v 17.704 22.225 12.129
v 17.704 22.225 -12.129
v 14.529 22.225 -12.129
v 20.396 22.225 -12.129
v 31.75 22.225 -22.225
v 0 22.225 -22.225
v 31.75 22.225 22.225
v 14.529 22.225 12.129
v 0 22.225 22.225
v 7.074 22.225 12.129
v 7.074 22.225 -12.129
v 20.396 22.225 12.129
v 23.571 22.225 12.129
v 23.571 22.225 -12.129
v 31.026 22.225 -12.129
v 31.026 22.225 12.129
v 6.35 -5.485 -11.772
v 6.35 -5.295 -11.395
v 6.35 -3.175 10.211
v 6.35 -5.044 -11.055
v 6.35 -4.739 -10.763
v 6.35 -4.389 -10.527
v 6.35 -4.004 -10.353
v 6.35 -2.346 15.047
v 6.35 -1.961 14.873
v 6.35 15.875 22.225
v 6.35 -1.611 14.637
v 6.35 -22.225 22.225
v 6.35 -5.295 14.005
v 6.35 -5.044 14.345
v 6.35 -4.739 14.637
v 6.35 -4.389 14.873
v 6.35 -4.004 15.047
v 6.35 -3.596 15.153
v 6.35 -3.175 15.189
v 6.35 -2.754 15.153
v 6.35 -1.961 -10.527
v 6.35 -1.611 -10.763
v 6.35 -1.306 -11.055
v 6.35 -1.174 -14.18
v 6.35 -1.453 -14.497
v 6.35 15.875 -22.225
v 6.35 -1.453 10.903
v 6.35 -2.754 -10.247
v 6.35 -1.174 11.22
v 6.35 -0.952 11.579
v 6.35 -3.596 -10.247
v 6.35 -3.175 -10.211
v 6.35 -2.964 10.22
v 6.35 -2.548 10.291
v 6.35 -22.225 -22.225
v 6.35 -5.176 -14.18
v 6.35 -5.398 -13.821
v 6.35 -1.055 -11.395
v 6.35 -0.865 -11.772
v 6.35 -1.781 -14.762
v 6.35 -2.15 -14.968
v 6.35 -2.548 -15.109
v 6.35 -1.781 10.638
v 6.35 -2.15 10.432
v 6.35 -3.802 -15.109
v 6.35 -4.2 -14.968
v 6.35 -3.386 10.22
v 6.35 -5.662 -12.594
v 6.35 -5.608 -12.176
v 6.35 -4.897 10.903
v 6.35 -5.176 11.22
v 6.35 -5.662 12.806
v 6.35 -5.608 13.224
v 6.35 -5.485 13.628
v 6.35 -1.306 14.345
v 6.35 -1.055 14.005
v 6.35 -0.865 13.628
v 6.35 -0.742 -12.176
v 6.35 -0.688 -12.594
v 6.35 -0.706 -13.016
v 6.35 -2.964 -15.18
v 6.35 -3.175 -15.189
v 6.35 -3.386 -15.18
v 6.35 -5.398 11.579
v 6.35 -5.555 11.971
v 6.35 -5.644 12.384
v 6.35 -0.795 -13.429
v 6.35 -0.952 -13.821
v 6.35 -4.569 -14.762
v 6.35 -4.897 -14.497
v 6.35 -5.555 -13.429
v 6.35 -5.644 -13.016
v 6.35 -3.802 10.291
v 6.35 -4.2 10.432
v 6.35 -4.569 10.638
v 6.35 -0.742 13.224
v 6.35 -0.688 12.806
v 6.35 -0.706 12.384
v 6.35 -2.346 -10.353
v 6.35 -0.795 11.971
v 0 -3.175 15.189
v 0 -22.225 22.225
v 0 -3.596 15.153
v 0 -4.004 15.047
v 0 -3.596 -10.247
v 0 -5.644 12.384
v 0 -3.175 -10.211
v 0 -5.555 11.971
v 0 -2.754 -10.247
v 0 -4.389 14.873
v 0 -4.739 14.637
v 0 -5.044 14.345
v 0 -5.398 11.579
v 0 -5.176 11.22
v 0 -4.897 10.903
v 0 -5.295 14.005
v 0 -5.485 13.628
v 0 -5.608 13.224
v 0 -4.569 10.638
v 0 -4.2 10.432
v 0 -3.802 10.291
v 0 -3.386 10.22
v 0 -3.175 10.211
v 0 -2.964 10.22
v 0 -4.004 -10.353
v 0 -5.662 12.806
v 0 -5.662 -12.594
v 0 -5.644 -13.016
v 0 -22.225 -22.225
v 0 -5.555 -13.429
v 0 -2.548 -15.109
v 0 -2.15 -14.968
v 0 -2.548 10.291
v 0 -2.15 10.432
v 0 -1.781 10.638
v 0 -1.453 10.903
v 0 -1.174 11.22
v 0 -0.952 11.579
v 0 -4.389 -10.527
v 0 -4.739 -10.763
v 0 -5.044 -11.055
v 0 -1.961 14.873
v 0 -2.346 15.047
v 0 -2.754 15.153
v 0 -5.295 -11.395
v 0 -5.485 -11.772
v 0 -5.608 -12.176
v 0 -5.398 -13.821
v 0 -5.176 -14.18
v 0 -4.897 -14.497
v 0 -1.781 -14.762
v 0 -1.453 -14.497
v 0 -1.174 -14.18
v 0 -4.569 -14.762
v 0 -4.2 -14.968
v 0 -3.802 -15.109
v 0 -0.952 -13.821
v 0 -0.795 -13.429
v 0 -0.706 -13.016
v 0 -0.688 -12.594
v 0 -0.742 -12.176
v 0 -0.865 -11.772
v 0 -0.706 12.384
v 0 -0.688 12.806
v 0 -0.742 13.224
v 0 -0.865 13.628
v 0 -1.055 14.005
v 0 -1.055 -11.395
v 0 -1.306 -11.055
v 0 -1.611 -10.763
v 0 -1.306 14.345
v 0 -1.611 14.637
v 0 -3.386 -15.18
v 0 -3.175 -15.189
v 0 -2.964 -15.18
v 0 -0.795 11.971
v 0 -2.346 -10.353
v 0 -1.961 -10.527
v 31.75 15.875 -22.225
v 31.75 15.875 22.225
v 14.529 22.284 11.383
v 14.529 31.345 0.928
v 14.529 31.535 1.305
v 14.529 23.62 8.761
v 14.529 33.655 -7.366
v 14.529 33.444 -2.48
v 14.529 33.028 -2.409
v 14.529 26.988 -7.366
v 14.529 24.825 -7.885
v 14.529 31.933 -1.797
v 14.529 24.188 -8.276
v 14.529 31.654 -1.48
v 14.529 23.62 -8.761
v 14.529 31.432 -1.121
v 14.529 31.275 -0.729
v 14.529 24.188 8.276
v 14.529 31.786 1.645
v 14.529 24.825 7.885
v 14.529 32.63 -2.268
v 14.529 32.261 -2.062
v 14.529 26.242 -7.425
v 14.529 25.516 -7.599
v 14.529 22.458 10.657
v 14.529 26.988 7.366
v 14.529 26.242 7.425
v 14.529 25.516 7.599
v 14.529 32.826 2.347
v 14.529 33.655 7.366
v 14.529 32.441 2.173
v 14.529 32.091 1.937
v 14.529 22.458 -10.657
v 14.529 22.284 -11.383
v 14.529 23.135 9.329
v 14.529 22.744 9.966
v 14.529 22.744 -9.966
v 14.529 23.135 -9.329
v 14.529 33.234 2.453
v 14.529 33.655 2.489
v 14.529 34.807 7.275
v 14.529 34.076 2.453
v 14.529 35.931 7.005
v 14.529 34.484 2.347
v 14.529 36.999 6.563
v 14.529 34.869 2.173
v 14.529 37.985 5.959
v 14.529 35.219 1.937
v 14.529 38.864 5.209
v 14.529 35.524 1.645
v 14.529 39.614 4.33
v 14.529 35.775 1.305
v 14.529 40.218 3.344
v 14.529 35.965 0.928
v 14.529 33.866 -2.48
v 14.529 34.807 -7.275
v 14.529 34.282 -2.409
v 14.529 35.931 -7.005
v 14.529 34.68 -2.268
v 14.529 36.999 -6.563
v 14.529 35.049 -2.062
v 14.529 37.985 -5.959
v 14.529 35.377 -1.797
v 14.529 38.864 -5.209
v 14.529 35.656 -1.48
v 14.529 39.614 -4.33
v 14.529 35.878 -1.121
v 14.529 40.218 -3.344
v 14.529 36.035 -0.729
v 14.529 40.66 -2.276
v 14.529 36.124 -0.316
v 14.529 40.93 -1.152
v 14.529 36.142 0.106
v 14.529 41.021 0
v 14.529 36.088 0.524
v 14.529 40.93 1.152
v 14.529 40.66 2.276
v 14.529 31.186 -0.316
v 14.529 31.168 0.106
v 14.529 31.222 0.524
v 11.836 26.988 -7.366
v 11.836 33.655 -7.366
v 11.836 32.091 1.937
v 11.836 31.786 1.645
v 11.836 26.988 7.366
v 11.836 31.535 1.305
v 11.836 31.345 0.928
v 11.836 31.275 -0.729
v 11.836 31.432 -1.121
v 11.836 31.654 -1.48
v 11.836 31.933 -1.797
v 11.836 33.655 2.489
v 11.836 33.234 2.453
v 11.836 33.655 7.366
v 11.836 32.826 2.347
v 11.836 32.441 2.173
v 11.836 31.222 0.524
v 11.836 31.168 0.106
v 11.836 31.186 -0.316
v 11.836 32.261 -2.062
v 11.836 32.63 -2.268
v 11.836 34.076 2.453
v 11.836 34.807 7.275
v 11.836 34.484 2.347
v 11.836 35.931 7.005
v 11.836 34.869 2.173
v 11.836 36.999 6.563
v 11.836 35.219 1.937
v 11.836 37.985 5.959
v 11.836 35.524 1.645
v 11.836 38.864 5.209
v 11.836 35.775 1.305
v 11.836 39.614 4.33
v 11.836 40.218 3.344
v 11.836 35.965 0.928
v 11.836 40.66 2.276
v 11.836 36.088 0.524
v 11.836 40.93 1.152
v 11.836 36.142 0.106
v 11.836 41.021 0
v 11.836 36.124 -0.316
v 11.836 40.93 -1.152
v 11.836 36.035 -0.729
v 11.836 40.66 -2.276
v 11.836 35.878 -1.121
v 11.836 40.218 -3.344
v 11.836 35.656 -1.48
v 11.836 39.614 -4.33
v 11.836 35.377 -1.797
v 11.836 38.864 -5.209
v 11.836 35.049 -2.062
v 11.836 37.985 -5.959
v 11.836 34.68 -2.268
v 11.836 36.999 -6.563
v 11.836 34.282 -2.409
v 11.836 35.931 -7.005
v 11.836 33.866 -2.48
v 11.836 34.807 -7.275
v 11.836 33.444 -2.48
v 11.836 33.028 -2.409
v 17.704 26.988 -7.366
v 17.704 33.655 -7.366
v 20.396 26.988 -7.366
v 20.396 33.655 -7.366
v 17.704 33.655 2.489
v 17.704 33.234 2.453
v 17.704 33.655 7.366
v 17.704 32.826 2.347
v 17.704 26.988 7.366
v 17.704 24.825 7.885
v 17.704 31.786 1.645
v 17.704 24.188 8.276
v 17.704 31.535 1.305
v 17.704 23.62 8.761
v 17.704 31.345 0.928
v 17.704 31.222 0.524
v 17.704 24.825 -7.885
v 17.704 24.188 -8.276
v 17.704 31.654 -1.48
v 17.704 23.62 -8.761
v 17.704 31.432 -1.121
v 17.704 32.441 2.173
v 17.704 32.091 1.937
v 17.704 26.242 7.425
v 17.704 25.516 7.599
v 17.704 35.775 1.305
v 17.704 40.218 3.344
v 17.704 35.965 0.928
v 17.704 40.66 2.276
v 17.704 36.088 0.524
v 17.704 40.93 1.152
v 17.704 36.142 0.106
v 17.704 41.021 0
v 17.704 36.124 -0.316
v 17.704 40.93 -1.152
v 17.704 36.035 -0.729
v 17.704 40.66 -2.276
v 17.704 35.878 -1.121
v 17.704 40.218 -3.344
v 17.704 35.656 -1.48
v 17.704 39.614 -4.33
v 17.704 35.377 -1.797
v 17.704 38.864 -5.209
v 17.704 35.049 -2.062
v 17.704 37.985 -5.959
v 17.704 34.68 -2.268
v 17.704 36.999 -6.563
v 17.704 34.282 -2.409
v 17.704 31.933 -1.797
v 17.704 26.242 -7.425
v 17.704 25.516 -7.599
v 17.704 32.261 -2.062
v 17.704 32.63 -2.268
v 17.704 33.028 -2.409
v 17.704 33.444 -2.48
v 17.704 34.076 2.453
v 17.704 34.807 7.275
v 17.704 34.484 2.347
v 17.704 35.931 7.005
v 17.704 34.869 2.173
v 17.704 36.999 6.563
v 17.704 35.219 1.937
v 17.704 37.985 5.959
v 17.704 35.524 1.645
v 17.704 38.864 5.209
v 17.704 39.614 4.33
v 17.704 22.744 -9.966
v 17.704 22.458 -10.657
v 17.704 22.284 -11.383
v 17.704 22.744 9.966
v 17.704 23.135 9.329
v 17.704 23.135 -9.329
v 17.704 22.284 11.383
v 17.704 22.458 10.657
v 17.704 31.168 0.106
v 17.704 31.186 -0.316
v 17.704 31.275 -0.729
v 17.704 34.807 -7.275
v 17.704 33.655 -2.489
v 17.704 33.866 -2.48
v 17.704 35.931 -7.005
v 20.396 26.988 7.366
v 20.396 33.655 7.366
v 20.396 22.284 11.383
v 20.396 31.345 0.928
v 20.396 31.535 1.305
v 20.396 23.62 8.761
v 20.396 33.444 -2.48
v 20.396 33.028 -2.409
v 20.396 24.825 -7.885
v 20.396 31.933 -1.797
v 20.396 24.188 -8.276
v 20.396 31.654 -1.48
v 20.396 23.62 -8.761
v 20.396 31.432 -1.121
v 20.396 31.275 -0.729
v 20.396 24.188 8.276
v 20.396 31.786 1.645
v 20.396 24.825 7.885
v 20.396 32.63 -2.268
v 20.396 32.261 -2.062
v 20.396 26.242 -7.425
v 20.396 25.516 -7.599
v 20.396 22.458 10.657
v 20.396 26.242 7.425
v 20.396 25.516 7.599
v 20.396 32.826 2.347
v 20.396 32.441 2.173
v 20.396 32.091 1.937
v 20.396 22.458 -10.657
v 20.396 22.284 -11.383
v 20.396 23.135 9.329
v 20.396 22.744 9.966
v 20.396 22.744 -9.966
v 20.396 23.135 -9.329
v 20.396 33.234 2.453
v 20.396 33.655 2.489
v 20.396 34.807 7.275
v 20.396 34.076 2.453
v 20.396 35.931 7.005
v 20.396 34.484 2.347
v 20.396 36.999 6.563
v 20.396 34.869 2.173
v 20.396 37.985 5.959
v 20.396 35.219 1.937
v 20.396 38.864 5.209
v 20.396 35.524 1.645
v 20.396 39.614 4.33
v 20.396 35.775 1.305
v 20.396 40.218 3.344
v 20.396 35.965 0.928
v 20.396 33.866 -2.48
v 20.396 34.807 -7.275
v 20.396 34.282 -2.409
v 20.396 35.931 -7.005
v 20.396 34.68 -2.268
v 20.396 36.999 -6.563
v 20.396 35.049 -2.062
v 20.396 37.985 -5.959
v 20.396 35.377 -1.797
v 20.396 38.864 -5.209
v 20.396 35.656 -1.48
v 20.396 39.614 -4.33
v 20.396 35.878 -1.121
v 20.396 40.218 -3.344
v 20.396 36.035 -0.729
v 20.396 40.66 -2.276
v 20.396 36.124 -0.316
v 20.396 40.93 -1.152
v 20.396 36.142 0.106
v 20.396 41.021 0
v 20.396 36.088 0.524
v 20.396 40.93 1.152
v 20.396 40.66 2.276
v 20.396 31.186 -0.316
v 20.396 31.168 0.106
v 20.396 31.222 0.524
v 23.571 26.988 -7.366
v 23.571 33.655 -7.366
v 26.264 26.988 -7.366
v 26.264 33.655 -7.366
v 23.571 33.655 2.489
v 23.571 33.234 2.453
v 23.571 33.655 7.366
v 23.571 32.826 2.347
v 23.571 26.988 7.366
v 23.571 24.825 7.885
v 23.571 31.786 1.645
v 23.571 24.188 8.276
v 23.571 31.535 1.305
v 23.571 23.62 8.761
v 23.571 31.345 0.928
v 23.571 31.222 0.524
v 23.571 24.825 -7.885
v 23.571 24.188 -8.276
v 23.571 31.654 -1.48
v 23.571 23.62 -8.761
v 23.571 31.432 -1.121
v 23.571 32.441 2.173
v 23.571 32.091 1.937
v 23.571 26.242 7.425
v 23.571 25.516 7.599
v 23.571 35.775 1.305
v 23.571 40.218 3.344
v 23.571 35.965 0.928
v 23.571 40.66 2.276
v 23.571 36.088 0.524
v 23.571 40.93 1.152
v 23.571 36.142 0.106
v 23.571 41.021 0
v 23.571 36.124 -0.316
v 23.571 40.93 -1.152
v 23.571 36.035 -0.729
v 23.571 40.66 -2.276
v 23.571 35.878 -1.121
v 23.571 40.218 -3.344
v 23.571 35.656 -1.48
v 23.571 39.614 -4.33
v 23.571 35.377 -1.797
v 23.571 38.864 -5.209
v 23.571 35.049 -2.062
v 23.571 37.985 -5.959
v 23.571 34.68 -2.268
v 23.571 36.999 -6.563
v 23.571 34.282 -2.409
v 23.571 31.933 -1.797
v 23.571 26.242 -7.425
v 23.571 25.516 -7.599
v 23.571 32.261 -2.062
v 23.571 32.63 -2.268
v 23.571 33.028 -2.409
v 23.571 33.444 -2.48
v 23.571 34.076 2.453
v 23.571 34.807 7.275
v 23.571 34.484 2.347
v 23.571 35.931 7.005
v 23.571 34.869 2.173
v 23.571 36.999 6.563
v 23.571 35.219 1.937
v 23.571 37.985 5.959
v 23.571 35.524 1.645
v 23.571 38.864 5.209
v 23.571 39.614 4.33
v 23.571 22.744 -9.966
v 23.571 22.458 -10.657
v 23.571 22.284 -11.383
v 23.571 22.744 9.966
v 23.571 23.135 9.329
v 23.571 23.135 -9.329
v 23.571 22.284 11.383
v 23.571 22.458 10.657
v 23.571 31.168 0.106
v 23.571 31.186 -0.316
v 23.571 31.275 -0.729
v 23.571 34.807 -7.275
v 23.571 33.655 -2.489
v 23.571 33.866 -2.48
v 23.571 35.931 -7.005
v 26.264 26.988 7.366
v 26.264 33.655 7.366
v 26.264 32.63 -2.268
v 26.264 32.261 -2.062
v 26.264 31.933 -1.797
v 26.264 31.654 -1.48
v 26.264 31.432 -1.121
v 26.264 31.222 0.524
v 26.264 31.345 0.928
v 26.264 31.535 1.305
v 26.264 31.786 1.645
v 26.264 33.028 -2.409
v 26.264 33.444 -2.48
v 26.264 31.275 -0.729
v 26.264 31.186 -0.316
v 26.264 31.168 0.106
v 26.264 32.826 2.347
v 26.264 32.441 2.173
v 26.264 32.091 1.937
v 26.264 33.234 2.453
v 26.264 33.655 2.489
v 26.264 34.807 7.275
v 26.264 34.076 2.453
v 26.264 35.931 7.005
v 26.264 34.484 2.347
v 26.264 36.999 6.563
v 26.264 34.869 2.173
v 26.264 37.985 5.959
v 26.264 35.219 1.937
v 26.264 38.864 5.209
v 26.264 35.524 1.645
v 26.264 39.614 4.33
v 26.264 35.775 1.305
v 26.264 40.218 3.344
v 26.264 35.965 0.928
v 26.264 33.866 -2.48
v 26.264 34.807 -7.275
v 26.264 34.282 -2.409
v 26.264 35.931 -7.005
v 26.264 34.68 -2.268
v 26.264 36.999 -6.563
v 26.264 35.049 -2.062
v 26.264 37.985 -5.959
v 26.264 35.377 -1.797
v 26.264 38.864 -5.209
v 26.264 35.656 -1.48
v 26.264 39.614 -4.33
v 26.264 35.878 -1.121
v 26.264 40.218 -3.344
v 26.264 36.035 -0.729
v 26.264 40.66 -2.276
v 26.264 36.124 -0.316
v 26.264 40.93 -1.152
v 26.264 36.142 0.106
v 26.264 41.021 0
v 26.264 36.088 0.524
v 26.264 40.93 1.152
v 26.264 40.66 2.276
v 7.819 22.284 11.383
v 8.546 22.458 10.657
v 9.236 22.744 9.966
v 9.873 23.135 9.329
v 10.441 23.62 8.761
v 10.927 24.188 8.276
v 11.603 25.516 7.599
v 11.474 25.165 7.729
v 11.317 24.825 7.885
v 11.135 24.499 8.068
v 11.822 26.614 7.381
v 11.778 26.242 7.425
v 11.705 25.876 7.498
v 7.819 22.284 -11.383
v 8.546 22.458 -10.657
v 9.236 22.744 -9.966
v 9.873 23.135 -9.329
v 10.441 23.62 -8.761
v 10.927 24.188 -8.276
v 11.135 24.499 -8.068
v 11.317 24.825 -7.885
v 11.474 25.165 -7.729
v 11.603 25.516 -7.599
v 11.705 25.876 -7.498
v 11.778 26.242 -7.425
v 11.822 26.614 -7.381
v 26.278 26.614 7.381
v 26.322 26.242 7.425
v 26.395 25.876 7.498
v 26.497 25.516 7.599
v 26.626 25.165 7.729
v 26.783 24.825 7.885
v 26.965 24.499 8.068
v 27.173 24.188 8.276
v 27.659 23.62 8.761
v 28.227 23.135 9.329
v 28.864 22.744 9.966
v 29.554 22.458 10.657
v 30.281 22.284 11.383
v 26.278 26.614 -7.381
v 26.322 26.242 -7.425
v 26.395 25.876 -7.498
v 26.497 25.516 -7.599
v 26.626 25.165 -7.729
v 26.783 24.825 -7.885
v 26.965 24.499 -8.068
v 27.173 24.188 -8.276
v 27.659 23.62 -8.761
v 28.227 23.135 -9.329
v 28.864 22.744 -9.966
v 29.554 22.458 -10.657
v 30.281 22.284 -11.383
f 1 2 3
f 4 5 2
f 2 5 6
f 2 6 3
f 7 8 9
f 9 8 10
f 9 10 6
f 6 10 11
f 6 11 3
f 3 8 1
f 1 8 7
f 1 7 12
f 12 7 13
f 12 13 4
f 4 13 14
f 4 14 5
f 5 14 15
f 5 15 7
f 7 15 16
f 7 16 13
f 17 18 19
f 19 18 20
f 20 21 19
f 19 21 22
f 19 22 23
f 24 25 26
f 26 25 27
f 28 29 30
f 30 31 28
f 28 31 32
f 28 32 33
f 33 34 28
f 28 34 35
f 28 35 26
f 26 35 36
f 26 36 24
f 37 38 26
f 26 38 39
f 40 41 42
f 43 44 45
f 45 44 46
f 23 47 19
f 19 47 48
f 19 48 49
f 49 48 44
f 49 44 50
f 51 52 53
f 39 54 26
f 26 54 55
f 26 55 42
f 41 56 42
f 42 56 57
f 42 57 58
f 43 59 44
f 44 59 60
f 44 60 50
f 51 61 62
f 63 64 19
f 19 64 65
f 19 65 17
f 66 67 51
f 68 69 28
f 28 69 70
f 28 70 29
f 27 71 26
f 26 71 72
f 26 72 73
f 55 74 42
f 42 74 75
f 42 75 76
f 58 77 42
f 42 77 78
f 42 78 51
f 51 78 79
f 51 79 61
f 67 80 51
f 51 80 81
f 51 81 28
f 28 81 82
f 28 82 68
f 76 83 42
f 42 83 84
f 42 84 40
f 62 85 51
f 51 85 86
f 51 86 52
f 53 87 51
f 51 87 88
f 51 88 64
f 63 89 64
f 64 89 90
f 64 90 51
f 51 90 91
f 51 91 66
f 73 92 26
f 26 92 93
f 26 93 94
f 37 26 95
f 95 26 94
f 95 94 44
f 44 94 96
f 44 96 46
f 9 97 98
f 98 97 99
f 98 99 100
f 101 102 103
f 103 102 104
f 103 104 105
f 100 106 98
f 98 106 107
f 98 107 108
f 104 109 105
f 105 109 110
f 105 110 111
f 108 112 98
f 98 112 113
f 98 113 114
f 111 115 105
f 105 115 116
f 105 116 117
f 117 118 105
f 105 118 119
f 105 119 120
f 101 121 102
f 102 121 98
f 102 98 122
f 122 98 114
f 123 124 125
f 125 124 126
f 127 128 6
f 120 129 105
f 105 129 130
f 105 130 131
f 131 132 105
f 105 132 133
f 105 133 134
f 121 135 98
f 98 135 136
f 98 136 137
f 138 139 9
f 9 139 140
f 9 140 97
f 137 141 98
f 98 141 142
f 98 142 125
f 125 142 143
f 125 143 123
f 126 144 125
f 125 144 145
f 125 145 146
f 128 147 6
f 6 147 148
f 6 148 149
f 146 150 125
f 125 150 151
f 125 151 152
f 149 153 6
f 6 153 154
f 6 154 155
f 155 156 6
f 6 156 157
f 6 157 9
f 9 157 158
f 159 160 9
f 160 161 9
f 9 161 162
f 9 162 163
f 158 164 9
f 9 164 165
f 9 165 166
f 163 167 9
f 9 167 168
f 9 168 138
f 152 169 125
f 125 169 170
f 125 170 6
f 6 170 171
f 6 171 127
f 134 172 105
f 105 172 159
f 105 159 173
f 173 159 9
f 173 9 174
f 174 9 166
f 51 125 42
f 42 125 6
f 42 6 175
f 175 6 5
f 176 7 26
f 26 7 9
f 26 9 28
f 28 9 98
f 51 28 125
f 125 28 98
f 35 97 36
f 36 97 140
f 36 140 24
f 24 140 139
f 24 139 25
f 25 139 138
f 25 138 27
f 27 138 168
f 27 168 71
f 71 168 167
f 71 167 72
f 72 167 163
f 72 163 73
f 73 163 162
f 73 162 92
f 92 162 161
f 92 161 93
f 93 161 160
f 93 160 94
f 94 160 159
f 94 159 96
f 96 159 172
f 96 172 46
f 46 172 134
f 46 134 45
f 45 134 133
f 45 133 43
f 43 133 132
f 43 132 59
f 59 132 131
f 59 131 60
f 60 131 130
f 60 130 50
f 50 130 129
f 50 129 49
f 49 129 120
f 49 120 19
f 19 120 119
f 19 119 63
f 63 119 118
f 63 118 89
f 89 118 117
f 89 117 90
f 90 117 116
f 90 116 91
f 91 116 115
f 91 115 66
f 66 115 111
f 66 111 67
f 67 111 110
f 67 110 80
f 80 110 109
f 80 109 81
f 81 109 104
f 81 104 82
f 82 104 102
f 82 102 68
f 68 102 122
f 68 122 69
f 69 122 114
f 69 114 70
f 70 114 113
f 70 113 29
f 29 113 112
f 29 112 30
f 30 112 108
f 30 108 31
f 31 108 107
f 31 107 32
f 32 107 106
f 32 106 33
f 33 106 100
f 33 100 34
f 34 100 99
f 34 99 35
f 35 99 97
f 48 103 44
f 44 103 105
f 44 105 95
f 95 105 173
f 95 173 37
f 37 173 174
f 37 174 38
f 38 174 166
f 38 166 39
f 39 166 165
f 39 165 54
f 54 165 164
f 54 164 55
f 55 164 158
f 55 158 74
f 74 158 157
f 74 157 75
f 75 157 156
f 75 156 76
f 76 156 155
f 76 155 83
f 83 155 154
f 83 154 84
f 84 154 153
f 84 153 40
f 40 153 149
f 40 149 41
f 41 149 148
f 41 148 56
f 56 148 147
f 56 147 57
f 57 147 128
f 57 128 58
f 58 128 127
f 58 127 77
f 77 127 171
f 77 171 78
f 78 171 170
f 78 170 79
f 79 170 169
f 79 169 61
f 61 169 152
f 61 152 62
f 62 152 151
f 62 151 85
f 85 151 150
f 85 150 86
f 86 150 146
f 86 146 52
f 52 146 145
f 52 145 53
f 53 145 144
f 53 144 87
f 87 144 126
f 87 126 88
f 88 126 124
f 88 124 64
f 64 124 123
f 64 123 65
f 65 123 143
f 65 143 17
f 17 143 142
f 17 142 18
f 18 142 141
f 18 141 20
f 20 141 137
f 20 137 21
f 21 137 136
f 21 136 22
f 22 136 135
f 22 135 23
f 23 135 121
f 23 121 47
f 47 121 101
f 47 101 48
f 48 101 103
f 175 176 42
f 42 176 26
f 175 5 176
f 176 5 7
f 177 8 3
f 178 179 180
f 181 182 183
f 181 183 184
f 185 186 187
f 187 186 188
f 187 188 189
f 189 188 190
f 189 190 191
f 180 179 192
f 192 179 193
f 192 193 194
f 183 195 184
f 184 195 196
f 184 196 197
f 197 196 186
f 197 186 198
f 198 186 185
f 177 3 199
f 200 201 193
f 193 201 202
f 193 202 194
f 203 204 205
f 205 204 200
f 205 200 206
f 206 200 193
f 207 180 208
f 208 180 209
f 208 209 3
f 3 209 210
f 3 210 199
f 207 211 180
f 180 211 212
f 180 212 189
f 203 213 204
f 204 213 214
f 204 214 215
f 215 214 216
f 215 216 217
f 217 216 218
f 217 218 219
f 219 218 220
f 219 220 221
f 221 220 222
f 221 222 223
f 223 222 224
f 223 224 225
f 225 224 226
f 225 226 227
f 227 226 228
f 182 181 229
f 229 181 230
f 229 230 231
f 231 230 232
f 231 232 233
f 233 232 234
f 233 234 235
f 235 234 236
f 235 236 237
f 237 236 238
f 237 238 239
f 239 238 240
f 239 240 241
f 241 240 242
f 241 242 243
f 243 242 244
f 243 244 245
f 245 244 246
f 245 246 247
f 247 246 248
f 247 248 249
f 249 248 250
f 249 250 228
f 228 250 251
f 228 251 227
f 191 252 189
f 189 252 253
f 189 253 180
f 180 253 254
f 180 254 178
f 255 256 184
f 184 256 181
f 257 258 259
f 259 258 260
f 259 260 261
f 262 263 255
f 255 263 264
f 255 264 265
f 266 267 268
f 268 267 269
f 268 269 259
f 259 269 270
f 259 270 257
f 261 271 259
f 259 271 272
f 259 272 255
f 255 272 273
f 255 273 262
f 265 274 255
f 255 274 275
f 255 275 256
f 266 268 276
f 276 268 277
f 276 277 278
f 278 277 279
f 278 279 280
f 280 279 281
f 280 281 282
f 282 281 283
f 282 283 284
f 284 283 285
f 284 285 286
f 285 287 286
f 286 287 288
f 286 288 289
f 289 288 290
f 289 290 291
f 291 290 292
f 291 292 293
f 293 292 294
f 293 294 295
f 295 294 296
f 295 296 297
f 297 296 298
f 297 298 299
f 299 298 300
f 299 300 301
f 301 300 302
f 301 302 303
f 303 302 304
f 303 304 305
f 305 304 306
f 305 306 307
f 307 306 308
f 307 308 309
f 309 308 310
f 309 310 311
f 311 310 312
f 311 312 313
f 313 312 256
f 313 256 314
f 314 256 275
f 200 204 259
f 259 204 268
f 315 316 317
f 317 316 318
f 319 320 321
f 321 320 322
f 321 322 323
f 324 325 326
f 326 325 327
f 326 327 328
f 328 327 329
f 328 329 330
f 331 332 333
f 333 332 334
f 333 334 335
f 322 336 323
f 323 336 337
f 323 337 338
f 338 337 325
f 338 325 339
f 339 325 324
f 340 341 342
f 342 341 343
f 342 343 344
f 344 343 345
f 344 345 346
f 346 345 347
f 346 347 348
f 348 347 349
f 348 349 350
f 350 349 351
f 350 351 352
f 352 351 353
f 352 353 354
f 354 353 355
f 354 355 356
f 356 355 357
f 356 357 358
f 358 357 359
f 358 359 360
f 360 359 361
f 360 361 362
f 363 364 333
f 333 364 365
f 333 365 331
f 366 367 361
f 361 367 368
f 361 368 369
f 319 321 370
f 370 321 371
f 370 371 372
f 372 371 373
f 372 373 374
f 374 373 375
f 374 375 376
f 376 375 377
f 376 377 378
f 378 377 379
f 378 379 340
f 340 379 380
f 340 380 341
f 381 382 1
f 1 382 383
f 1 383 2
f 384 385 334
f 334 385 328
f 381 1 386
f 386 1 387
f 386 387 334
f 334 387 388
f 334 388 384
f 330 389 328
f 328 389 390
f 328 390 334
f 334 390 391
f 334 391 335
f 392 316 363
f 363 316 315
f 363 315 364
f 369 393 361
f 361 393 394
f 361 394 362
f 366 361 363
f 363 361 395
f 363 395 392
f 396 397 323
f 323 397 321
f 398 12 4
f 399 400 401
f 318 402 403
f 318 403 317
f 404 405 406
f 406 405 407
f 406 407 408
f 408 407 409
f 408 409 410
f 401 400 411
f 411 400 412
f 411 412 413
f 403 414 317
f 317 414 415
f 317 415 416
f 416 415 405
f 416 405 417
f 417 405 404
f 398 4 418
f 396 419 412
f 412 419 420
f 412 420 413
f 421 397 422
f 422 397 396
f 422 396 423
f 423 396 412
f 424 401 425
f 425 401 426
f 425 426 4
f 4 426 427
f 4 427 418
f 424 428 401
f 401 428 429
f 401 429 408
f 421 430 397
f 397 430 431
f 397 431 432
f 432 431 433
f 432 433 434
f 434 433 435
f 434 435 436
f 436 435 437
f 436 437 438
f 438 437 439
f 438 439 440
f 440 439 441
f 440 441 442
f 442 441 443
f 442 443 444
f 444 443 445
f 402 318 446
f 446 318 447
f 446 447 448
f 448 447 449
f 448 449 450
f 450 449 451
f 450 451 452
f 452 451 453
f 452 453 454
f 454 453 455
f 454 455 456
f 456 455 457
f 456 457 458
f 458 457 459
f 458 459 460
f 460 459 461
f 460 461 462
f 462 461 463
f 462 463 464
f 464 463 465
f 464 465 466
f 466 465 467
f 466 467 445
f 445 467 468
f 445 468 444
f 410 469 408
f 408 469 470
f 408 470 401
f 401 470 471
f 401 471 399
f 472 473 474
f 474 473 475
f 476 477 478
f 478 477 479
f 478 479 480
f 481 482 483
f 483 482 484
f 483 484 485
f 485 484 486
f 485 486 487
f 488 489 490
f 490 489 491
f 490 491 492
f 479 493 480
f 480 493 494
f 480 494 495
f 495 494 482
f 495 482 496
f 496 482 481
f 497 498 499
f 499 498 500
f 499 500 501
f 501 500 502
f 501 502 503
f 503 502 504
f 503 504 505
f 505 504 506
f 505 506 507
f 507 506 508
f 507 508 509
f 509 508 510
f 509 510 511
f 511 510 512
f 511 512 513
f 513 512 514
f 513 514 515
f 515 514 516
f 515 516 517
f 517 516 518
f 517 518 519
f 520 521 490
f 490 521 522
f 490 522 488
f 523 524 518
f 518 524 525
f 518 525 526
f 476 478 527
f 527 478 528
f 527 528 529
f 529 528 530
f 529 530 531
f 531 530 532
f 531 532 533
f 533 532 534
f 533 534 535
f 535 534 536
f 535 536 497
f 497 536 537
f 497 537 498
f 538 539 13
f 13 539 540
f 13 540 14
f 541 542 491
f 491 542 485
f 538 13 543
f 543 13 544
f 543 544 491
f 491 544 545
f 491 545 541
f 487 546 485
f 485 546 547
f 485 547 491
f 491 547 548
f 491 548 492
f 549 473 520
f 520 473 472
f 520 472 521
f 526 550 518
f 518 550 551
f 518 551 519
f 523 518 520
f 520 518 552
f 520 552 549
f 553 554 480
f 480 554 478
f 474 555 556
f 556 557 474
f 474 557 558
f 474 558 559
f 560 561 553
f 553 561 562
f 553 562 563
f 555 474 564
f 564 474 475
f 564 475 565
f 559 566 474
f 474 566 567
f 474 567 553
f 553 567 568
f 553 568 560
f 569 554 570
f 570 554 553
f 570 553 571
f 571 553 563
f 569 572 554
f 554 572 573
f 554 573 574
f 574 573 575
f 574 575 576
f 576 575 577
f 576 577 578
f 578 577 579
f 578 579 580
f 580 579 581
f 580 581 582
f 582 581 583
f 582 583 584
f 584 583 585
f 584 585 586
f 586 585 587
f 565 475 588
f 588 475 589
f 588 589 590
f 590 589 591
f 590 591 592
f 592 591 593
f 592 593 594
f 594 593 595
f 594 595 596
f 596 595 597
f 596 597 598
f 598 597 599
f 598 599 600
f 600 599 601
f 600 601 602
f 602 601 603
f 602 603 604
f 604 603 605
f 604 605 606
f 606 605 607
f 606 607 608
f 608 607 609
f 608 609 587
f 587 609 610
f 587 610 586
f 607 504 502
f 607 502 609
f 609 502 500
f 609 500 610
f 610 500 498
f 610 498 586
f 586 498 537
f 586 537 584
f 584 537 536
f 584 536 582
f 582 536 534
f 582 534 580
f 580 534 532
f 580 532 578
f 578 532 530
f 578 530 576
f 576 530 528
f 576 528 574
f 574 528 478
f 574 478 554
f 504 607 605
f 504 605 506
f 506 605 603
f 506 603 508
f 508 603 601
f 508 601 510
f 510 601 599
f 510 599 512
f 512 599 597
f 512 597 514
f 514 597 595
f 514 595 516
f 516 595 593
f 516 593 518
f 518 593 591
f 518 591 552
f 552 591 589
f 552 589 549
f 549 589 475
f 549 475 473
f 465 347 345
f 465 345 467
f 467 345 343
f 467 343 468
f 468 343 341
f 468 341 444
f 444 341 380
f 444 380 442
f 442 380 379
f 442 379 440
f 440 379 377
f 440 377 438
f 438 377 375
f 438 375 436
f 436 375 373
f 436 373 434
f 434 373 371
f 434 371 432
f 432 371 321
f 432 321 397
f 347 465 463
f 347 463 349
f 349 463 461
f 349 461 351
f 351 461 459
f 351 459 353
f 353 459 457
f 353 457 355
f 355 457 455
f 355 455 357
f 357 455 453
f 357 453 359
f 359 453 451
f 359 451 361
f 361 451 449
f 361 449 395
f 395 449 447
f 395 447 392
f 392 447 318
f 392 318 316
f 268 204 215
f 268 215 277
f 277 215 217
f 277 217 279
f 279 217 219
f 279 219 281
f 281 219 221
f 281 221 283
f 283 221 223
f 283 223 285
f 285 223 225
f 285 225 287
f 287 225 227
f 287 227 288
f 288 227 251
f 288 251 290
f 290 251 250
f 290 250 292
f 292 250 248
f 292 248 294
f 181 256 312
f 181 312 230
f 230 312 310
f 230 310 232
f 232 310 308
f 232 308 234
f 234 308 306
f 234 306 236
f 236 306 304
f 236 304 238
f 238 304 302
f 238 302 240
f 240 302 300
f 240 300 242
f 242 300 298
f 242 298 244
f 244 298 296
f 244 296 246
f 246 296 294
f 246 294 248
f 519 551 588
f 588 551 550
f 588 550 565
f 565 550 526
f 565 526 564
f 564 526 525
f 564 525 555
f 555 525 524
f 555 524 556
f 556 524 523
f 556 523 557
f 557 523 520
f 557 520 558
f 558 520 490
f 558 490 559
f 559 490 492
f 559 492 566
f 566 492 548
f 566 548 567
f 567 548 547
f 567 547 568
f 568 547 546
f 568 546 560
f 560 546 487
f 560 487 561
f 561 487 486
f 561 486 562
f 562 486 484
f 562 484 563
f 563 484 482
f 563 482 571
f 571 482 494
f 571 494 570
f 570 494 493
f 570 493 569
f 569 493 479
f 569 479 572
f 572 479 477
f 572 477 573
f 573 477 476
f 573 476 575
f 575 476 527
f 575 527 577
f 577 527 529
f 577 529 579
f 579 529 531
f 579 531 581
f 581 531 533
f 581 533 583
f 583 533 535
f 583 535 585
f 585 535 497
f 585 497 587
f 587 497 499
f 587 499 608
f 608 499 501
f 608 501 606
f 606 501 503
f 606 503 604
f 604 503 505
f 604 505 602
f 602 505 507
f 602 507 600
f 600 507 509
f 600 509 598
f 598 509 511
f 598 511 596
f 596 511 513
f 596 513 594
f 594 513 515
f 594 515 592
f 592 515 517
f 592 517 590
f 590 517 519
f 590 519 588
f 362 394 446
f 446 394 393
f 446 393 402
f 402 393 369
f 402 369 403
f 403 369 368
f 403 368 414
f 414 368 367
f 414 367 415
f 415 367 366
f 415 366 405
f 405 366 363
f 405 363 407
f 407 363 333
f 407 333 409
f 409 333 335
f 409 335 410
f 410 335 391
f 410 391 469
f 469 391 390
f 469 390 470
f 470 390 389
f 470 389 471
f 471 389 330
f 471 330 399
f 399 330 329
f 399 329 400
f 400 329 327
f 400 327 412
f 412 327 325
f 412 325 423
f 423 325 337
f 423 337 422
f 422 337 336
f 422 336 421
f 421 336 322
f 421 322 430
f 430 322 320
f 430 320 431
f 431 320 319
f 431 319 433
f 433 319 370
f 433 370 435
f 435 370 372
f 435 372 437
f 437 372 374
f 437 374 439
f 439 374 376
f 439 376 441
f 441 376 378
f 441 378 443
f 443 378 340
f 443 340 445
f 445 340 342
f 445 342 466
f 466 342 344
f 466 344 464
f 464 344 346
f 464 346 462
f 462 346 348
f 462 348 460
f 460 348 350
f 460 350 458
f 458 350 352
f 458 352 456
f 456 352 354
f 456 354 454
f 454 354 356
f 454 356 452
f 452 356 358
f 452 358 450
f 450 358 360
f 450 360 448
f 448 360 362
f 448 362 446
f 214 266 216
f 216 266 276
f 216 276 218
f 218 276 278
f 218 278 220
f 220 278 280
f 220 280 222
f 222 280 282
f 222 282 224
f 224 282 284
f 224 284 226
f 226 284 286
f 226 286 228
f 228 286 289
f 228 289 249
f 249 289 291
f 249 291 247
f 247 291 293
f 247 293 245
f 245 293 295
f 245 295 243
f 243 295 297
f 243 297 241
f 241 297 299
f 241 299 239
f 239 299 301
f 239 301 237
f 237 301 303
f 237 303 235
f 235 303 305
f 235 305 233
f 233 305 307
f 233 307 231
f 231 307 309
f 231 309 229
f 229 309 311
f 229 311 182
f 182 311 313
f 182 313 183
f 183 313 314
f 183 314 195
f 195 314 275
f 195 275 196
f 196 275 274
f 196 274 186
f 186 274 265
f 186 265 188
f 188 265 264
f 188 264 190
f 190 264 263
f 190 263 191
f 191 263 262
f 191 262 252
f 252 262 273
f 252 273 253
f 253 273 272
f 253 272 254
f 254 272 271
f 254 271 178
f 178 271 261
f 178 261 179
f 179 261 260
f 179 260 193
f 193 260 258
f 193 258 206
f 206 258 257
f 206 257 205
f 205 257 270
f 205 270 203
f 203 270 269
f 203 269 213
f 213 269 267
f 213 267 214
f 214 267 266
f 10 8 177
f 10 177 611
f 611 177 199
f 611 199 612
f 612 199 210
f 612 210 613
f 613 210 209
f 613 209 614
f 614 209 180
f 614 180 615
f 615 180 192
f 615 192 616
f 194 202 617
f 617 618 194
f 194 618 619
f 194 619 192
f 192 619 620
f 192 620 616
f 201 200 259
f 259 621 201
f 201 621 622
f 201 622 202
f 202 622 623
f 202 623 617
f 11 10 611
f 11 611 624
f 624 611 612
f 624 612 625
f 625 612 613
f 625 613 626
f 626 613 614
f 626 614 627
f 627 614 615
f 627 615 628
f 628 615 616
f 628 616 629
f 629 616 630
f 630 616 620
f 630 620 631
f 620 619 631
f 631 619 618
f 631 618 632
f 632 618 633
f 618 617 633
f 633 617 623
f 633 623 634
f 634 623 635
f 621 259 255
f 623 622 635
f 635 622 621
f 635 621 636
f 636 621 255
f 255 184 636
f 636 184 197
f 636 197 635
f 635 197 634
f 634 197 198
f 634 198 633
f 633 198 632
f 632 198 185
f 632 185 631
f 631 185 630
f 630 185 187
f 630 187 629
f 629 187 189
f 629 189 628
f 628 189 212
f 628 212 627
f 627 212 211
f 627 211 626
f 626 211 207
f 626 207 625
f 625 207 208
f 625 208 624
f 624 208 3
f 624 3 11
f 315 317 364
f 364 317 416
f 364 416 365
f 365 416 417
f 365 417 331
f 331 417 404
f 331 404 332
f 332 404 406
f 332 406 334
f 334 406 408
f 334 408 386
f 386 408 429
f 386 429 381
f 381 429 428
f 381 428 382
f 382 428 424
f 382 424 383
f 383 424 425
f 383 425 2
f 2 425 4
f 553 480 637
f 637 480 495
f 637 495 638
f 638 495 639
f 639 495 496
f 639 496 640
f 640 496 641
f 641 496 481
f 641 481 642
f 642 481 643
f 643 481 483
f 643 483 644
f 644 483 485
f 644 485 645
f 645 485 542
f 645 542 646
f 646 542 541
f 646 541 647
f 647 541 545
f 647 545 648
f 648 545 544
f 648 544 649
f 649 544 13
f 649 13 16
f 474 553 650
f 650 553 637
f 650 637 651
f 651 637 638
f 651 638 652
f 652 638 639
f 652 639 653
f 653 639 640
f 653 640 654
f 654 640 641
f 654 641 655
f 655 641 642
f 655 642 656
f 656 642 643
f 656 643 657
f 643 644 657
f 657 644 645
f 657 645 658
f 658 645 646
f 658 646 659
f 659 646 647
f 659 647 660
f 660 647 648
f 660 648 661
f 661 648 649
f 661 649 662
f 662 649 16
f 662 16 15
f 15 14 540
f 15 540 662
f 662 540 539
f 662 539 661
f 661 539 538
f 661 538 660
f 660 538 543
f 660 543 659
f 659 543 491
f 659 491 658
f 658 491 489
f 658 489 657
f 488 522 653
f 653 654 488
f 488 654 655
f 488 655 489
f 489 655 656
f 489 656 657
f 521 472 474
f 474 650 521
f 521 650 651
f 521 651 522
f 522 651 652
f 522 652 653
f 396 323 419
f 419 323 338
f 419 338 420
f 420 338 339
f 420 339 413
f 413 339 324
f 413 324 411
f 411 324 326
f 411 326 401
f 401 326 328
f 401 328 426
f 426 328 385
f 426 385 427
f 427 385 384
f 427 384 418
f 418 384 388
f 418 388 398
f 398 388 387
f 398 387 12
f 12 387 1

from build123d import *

# Parameters (mm, degrees)
SKETCH1_W           = 44.45
SKETCH1_H           = 44.45
SKETCH1_R           = 2.4892
BOSS_EXTRUDE1_DEPTH = 6.35
SKETCH2_W           = 44.45
SKETCH2_H           = 6.35
BOSS_EXTRUDE2_DEPTH = 25.4
SKETCH3_W           = 2.6924
SKETCH3_H           = 14.732
BOSS_EXTRUDE3_DEPTH = 18.796
FILLET3_R           = 7.366
CUT_EXTRUDE1_REACH  = 52.727
SKETCH4_R           = 2.4892
FILLET4_R           = 4.7625


with BuildPart() as part:
    # Sketch1 → Boss-Extrude1 (new body)
    with BuildSketch(Plane(origin=(0, 0, 0), x_dir=(0, 0, -1), z_dir=(1, 0, 0))):
        Rectangle(SKETCH1_W, SKETCH1_H)
        with Locations((-12.7, -3.175)):
            Circle(SKETCH1_R, mode=Mode.SUBTRACT)
        with Locations((12.7, -3.175)):
            Circle(SKETCH1_R, mode=Mode.SUBTRACT)
    extrude(amount=BOSS_EXTRUDE1_DEPTH)

    # Sketch2 → Boss-Extrude2 (add)
    with BuildSketch(Plane(origin=(6.35, 0, 0), x_dir=(0, 0, -1), z_dir=(1, 0, 0))):
        with Locations((0, 19.05)):
            Rectangle(SKETCH2_W, SKETCH2_H)
    extrude(amount=BOSS_EXTRUDE2_DEPTH)

    # Sketch3 → Boss-Extrude3 (add)
    with BuildSketch(Plane(origin=(0, 22.225, 0), x_dir=(1, 0, 0), z_dir=(0, 1, 0))):
        with Locations((13.1826, 0)):
            Rectangle(SKETCH3_W, SKETCH3_H)
        with Locations((19.05, 0)):
            Rectangle(SKETCH3_W, SKETCH3_H)
        with Locations((24.9174, 0)):
            Rectangle(SKETCH3_W, SKETCH3_H)
    extrude(amount=BOSS_EXTRUDE3_DEPTH)

    # Fillet3
    fillet3_edges = [part.edges().sort_by_distance(p)[0] for p in [
        (19.05, 41.021, -7.366),
        (13.1826, 41.021, -7.366),
        (24.9174, 41.021, 7.366),
        (19.05, 41.021, 7.366),
        (13.1826, 41.021, 7.366),
        (24.9174, 41.021, -7.366),
    ]]
    fillet(fillet3_edges, radius=FILLET3_R - 0.0001)  # a hair under: the kernel refuses the full size

    # Cut-Extrude1: up to this face of the body (flat: up to its plane)
    cut_extrude1_end = Plane(part.part.faces().sort_by_distance((26.2636, 30.911144625, 0))[0])
    # Sketch4 → Cut-Extrude1 (cut, up to the picked face)
    with BuildSketch(Plane.ZY.offset(-11.8364), mode=Mode.PRIVATE) as cut_extrude1_sk1:
        with Locations((0, 33.655)):
            Circle(SKETCH4_R)
    cut_extrude1_tool1 = split(extrude(cut_extrude1_sk1.sketch, amount=-CUT_EXTRUDE1_REACH, mode=Mode.PRIVATE), bisect_by=cut_extrude1_end, keep=Keep.BOTH, mode=Mode.PRIVATE)
    add(cut_extrude1_tool1.solids().sort_by(Axis((11.8364, 33.655, 0), (1, 0, 0)))[0], mode=Mode.SUBTRACT)

    # Fillet4
    fillet4_edges = [part.edges().sort_by_distance(p)[0] for p in [
        (13.1826, 22.225, -7.366),
        (11.8364, 22.225, 0),
        (13.1826, 22.225, 7.366),
        (19.05, 22.225, -7.366),
        (19.05, 22.225, 7.366),
        (24.9174, 22.225, -7.366),
        (24.9174, 22.225, 7.366),
        (26.2636, 22.225, 0),
    ]]
    fillet(fillet4_edges, radius=FILLET4_R)


solid = part.part
